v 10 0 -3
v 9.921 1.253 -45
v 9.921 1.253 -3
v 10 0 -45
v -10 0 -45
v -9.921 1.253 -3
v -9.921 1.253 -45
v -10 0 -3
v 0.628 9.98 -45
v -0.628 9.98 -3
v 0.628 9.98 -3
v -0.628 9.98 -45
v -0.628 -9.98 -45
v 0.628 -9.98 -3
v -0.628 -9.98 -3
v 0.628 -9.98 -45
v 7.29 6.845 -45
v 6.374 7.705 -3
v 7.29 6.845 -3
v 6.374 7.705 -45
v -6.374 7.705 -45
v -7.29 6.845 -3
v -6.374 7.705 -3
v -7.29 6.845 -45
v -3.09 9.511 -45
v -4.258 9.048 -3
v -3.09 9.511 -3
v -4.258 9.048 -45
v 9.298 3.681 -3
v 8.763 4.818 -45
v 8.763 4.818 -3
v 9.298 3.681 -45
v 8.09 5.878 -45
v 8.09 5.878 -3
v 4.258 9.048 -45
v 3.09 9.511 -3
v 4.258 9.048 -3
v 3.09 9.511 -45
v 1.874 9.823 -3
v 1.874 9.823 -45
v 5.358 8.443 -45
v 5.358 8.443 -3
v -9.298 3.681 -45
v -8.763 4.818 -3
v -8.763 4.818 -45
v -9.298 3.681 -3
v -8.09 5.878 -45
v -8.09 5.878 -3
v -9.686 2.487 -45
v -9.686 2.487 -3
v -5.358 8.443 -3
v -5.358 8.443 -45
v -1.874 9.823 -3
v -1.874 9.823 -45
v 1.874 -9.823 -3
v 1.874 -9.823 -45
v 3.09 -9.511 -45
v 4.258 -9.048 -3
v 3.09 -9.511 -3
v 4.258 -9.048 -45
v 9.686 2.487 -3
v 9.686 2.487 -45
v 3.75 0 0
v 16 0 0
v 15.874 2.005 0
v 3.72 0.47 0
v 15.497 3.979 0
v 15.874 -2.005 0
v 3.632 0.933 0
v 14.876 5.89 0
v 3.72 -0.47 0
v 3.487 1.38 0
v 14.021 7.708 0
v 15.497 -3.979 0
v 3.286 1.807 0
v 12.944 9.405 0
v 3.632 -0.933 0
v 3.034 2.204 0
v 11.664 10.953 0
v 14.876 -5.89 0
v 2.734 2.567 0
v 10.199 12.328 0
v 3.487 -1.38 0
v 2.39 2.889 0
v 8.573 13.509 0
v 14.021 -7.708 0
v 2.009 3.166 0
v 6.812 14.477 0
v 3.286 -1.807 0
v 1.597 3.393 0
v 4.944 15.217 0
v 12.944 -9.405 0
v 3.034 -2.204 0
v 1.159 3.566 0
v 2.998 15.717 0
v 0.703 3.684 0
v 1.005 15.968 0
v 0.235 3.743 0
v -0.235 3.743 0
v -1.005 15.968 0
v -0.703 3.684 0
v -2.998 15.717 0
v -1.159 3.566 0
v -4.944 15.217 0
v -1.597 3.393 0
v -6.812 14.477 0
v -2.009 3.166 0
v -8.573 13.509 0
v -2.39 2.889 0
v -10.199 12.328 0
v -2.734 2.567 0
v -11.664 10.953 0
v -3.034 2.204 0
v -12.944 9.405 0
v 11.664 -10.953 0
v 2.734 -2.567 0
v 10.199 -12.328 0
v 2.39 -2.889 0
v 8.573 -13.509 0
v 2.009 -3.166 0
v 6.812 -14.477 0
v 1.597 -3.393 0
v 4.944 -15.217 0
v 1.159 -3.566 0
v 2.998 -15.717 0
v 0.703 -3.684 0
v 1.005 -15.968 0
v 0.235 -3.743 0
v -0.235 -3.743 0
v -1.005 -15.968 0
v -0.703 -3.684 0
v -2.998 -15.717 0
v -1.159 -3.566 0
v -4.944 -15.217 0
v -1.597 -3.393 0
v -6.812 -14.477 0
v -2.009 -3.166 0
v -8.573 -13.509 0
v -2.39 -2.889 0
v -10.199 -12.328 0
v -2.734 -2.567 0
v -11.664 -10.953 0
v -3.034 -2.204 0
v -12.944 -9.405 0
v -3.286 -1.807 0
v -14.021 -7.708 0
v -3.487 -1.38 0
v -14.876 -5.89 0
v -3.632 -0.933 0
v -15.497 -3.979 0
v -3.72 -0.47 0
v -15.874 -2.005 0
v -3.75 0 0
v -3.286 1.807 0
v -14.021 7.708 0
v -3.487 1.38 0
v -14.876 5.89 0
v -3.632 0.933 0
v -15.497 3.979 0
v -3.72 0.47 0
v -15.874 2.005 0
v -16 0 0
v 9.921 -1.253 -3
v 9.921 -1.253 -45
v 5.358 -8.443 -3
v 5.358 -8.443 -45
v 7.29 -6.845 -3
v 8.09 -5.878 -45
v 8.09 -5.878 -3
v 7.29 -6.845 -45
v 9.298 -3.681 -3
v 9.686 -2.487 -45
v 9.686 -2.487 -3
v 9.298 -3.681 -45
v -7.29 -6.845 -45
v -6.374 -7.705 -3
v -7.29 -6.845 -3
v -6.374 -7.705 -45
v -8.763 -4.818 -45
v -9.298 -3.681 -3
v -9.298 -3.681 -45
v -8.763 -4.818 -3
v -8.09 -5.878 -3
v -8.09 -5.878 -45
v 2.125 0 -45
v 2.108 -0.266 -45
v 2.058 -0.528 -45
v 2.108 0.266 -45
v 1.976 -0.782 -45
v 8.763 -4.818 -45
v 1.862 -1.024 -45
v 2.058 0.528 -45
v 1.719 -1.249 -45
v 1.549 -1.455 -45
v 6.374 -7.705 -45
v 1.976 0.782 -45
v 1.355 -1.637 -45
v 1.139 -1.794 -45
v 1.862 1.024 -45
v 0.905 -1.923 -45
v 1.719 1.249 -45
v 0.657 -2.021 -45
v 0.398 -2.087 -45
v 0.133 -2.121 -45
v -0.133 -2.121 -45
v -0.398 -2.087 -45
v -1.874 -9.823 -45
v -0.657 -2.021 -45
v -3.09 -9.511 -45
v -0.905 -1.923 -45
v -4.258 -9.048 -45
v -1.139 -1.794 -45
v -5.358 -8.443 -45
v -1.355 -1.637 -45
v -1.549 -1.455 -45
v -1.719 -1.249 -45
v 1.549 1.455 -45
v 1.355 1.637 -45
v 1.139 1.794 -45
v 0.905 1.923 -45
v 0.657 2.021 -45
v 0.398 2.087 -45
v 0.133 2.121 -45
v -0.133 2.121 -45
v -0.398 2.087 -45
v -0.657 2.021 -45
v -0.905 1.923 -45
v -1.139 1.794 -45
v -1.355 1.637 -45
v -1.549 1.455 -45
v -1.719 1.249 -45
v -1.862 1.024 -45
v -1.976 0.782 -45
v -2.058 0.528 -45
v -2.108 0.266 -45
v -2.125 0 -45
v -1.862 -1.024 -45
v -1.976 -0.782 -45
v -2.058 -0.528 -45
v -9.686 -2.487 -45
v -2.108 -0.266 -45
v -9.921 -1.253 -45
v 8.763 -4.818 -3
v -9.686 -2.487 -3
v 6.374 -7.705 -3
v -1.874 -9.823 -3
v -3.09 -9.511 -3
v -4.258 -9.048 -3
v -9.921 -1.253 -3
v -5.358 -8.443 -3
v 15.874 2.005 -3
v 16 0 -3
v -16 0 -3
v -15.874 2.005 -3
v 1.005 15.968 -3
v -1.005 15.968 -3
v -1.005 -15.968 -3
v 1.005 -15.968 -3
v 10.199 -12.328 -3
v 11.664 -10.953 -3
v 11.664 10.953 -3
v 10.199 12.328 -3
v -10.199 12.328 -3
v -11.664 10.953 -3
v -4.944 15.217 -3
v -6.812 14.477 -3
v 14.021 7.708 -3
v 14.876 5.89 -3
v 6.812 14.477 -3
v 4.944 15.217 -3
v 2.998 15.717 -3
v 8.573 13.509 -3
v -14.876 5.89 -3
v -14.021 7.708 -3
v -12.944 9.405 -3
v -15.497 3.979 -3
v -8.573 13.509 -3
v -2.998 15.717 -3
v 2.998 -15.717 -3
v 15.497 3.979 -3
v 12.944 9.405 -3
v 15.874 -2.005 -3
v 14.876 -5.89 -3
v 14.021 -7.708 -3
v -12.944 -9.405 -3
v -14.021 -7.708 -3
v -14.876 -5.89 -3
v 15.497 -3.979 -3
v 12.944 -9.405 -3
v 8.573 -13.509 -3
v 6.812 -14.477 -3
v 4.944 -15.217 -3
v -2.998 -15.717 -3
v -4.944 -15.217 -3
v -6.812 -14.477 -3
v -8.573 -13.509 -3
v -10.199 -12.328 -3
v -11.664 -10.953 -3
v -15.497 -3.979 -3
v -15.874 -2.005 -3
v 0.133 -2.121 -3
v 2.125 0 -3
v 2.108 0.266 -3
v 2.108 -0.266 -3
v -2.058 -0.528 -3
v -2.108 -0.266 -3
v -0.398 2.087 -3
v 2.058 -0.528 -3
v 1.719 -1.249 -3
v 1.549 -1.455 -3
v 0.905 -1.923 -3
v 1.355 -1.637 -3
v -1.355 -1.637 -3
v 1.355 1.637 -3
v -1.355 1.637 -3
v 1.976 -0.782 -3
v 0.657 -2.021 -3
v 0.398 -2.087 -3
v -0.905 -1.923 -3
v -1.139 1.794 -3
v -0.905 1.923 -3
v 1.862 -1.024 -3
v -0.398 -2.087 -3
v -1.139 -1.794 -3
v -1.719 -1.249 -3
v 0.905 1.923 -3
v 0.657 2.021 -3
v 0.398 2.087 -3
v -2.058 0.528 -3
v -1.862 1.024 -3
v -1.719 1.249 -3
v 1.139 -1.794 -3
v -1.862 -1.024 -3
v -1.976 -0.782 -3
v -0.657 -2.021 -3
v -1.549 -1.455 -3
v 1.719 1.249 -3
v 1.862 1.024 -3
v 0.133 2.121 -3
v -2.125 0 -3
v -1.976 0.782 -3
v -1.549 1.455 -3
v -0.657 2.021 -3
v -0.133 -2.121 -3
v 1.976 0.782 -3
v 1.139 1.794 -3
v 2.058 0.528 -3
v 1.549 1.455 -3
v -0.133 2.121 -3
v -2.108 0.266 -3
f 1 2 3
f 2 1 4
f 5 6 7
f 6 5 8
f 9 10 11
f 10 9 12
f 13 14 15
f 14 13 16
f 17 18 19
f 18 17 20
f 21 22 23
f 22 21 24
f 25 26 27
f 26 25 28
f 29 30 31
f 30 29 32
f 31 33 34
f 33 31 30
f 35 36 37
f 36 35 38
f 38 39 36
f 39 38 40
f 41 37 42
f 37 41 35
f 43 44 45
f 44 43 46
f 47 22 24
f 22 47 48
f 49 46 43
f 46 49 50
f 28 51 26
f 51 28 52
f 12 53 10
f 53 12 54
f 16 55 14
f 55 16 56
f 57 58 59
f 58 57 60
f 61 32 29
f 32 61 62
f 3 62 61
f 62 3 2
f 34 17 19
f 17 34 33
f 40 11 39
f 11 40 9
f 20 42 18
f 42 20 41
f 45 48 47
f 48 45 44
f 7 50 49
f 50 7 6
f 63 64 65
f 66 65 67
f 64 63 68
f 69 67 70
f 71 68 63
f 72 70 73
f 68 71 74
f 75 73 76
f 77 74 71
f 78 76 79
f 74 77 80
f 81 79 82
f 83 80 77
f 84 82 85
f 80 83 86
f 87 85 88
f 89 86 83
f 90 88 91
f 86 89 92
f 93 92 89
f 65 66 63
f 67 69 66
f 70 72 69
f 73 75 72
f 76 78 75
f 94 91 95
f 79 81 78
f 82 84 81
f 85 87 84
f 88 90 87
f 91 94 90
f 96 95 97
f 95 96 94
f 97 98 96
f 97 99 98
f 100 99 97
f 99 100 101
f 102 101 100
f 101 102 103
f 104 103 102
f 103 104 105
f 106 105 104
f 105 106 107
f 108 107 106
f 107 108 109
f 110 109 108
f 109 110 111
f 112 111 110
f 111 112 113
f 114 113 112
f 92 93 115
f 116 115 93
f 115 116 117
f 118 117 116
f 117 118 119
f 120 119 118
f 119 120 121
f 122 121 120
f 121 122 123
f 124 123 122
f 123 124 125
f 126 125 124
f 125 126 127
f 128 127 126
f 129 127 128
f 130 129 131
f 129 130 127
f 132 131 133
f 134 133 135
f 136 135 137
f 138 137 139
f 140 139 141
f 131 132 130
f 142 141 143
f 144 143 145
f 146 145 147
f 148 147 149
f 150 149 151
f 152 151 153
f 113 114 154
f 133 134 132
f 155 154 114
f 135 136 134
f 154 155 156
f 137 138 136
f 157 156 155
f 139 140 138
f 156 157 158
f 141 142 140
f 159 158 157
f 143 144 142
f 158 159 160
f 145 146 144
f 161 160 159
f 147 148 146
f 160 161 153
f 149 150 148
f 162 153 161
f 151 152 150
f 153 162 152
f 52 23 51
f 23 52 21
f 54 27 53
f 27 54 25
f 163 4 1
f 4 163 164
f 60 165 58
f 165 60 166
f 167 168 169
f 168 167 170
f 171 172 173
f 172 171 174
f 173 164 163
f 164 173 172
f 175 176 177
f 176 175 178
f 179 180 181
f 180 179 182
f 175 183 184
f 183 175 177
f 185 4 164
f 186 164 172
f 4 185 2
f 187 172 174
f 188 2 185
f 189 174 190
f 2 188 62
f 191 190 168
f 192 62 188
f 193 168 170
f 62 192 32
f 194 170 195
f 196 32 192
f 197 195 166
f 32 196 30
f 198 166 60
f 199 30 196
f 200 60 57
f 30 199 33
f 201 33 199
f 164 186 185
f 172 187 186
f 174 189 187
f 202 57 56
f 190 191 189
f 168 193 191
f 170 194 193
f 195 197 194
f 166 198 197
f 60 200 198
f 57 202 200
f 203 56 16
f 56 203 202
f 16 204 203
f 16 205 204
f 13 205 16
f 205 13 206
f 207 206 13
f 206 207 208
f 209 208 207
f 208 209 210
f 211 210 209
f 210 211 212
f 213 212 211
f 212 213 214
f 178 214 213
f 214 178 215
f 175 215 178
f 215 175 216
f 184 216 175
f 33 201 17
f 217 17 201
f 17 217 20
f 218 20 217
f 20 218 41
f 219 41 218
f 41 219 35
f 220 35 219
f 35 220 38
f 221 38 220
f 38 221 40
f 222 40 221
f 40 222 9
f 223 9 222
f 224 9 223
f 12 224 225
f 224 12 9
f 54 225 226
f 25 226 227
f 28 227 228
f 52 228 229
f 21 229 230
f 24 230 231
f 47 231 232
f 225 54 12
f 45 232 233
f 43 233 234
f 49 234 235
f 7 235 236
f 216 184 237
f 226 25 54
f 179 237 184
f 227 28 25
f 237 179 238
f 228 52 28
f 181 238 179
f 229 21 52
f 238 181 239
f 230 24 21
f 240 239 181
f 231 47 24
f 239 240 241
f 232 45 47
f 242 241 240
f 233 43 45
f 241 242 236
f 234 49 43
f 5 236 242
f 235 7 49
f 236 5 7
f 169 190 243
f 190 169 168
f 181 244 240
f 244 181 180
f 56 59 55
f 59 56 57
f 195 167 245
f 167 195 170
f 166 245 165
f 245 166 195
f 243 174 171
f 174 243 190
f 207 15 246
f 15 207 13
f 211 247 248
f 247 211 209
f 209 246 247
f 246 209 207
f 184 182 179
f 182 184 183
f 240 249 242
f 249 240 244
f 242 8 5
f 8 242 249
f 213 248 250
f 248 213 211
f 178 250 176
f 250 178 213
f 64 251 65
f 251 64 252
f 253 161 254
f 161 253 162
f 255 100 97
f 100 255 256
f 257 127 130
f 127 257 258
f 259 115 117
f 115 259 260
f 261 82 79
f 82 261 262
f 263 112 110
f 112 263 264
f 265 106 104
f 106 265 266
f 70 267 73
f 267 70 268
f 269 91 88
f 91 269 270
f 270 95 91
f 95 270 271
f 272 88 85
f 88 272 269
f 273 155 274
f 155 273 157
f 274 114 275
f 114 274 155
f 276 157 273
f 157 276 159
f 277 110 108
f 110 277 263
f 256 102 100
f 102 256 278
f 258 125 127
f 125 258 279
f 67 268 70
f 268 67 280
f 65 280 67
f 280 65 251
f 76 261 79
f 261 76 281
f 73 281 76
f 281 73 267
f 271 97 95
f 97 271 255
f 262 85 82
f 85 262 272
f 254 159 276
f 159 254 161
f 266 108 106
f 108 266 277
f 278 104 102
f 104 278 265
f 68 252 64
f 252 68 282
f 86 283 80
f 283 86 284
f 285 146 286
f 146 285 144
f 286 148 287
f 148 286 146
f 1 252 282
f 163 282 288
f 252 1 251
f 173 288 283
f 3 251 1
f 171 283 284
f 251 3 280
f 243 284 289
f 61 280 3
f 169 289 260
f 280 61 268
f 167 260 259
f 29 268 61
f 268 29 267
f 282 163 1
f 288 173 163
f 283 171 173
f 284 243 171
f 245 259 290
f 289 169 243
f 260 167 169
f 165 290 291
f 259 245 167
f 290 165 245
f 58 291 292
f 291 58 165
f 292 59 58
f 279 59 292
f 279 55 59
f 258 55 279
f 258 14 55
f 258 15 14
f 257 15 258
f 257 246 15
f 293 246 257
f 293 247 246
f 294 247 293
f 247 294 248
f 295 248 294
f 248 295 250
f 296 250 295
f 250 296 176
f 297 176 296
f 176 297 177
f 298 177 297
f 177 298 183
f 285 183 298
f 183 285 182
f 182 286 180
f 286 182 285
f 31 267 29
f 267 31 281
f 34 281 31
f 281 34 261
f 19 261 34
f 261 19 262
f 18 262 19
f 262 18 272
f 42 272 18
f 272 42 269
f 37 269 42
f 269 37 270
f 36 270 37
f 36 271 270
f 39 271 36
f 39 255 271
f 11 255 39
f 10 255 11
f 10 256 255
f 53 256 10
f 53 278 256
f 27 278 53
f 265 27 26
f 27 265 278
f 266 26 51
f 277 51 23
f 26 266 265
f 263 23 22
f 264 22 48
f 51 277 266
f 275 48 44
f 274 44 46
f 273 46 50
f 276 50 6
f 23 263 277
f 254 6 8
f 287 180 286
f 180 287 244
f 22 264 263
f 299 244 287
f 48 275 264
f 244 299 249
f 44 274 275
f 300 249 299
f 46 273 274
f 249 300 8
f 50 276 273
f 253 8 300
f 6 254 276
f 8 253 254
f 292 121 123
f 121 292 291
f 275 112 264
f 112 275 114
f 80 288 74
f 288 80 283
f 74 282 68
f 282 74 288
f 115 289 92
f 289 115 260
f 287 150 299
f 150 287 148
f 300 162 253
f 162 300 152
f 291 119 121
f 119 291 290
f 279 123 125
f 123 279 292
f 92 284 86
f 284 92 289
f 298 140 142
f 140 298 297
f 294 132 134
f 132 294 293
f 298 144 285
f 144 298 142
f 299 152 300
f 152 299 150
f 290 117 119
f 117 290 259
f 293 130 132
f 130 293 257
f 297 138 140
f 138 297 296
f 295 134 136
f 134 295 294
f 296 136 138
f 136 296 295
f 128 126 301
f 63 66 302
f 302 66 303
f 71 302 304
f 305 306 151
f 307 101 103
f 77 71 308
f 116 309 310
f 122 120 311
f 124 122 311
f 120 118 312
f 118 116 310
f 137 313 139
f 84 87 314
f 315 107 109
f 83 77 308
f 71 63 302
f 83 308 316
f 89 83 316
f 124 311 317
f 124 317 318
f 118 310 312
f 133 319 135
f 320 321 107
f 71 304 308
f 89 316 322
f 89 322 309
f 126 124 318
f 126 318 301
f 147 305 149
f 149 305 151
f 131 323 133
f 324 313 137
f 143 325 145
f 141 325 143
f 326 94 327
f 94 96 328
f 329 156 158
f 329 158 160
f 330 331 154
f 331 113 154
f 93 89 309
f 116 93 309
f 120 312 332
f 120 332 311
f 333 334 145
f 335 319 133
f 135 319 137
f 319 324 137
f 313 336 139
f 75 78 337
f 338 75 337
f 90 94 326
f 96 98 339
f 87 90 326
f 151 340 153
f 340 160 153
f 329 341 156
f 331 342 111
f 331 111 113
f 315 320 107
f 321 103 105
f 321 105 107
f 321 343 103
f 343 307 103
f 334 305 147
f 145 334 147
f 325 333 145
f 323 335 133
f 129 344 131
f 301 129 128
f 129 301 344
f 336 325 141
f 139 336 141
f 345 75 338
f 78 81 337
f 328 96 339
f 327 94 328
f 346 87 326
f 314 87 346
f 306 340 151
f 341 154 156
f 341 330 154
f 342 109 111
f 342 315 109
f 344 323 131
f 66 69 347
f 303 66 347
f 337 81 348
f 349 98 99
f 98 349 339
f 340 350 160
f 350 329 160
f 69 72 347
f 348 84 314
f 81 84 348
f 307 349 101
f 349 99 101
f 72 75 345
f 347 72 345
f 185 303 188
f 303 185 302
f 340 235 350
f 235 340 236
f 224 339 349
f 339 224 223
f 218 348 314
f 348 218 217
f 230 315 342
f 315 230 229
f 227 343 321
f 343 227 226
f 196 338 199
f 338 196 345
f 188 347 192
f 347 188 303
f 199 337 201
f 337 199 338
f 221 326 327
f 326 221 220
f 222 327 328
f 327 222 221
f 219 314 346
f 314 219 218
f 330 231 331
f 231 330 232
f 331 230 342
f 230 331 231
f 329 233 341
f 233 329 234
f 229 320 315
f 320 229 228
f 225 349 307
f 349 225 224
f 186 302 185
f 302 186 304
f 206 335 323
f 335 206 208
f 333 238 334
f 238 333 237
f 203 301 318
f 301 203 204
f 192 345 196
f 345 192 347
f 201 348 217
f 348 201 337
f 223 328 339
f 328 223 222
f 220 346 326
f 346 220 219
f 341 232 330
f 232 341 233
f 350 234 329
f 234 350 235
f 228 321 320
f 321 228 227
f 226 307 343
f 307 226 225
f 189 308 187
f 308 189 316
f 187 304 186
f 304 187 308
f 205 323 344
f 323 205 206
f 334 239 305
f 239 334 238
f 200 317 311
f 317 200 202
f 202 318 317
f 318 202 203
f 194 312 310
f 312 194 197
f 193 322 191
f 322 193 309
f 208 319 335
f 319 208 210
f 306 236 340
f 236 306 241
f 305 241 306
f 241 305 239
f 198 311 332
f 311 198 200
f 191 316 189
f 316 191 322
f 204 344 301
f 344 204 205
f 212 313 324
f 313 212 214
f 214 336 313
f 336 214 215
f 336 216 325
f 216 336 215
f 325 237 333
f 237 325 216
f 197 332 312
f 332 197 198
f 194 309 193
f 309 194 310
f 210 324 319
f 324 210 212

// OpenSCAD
$fn = 50;


difference() {
	union() {
		translate(v = [0, 0, -45.0000000000]) {
			cylinder(h = 45, r = 10.0000000000);
		}
		translate(v = [0, 0, -3.0000000000]) {
			cylinder(h = 3, r = 16.0000000000);
		}
	}
	union() {
		translate(v = [0, 0, 0]) {
			rotate(a = [0, 0, 0]) {
				difference() {
					union() {
						#translate(v = [0, 0, -45.0000000000]) {
							cylinder(h = 45, r = 2.0000000000);
						}
						#translate(v = [0, 0, -3]) {
							cylinder(h = 3, r = 10.0000000000, r1 = 2.1250000000, r2 = 3.7500000000);
						}
						#translate(v = [0, 0, -45.0000000000]) {
							cylinder(h = 45, r = 2.1250000000);
						}
						#translate(v = [0, 0, -45.0000000000]) {
							cylinder(h = 45, r = 2.0000000000);
						}
					}
					union();
				}
			}
		}
	}
}
